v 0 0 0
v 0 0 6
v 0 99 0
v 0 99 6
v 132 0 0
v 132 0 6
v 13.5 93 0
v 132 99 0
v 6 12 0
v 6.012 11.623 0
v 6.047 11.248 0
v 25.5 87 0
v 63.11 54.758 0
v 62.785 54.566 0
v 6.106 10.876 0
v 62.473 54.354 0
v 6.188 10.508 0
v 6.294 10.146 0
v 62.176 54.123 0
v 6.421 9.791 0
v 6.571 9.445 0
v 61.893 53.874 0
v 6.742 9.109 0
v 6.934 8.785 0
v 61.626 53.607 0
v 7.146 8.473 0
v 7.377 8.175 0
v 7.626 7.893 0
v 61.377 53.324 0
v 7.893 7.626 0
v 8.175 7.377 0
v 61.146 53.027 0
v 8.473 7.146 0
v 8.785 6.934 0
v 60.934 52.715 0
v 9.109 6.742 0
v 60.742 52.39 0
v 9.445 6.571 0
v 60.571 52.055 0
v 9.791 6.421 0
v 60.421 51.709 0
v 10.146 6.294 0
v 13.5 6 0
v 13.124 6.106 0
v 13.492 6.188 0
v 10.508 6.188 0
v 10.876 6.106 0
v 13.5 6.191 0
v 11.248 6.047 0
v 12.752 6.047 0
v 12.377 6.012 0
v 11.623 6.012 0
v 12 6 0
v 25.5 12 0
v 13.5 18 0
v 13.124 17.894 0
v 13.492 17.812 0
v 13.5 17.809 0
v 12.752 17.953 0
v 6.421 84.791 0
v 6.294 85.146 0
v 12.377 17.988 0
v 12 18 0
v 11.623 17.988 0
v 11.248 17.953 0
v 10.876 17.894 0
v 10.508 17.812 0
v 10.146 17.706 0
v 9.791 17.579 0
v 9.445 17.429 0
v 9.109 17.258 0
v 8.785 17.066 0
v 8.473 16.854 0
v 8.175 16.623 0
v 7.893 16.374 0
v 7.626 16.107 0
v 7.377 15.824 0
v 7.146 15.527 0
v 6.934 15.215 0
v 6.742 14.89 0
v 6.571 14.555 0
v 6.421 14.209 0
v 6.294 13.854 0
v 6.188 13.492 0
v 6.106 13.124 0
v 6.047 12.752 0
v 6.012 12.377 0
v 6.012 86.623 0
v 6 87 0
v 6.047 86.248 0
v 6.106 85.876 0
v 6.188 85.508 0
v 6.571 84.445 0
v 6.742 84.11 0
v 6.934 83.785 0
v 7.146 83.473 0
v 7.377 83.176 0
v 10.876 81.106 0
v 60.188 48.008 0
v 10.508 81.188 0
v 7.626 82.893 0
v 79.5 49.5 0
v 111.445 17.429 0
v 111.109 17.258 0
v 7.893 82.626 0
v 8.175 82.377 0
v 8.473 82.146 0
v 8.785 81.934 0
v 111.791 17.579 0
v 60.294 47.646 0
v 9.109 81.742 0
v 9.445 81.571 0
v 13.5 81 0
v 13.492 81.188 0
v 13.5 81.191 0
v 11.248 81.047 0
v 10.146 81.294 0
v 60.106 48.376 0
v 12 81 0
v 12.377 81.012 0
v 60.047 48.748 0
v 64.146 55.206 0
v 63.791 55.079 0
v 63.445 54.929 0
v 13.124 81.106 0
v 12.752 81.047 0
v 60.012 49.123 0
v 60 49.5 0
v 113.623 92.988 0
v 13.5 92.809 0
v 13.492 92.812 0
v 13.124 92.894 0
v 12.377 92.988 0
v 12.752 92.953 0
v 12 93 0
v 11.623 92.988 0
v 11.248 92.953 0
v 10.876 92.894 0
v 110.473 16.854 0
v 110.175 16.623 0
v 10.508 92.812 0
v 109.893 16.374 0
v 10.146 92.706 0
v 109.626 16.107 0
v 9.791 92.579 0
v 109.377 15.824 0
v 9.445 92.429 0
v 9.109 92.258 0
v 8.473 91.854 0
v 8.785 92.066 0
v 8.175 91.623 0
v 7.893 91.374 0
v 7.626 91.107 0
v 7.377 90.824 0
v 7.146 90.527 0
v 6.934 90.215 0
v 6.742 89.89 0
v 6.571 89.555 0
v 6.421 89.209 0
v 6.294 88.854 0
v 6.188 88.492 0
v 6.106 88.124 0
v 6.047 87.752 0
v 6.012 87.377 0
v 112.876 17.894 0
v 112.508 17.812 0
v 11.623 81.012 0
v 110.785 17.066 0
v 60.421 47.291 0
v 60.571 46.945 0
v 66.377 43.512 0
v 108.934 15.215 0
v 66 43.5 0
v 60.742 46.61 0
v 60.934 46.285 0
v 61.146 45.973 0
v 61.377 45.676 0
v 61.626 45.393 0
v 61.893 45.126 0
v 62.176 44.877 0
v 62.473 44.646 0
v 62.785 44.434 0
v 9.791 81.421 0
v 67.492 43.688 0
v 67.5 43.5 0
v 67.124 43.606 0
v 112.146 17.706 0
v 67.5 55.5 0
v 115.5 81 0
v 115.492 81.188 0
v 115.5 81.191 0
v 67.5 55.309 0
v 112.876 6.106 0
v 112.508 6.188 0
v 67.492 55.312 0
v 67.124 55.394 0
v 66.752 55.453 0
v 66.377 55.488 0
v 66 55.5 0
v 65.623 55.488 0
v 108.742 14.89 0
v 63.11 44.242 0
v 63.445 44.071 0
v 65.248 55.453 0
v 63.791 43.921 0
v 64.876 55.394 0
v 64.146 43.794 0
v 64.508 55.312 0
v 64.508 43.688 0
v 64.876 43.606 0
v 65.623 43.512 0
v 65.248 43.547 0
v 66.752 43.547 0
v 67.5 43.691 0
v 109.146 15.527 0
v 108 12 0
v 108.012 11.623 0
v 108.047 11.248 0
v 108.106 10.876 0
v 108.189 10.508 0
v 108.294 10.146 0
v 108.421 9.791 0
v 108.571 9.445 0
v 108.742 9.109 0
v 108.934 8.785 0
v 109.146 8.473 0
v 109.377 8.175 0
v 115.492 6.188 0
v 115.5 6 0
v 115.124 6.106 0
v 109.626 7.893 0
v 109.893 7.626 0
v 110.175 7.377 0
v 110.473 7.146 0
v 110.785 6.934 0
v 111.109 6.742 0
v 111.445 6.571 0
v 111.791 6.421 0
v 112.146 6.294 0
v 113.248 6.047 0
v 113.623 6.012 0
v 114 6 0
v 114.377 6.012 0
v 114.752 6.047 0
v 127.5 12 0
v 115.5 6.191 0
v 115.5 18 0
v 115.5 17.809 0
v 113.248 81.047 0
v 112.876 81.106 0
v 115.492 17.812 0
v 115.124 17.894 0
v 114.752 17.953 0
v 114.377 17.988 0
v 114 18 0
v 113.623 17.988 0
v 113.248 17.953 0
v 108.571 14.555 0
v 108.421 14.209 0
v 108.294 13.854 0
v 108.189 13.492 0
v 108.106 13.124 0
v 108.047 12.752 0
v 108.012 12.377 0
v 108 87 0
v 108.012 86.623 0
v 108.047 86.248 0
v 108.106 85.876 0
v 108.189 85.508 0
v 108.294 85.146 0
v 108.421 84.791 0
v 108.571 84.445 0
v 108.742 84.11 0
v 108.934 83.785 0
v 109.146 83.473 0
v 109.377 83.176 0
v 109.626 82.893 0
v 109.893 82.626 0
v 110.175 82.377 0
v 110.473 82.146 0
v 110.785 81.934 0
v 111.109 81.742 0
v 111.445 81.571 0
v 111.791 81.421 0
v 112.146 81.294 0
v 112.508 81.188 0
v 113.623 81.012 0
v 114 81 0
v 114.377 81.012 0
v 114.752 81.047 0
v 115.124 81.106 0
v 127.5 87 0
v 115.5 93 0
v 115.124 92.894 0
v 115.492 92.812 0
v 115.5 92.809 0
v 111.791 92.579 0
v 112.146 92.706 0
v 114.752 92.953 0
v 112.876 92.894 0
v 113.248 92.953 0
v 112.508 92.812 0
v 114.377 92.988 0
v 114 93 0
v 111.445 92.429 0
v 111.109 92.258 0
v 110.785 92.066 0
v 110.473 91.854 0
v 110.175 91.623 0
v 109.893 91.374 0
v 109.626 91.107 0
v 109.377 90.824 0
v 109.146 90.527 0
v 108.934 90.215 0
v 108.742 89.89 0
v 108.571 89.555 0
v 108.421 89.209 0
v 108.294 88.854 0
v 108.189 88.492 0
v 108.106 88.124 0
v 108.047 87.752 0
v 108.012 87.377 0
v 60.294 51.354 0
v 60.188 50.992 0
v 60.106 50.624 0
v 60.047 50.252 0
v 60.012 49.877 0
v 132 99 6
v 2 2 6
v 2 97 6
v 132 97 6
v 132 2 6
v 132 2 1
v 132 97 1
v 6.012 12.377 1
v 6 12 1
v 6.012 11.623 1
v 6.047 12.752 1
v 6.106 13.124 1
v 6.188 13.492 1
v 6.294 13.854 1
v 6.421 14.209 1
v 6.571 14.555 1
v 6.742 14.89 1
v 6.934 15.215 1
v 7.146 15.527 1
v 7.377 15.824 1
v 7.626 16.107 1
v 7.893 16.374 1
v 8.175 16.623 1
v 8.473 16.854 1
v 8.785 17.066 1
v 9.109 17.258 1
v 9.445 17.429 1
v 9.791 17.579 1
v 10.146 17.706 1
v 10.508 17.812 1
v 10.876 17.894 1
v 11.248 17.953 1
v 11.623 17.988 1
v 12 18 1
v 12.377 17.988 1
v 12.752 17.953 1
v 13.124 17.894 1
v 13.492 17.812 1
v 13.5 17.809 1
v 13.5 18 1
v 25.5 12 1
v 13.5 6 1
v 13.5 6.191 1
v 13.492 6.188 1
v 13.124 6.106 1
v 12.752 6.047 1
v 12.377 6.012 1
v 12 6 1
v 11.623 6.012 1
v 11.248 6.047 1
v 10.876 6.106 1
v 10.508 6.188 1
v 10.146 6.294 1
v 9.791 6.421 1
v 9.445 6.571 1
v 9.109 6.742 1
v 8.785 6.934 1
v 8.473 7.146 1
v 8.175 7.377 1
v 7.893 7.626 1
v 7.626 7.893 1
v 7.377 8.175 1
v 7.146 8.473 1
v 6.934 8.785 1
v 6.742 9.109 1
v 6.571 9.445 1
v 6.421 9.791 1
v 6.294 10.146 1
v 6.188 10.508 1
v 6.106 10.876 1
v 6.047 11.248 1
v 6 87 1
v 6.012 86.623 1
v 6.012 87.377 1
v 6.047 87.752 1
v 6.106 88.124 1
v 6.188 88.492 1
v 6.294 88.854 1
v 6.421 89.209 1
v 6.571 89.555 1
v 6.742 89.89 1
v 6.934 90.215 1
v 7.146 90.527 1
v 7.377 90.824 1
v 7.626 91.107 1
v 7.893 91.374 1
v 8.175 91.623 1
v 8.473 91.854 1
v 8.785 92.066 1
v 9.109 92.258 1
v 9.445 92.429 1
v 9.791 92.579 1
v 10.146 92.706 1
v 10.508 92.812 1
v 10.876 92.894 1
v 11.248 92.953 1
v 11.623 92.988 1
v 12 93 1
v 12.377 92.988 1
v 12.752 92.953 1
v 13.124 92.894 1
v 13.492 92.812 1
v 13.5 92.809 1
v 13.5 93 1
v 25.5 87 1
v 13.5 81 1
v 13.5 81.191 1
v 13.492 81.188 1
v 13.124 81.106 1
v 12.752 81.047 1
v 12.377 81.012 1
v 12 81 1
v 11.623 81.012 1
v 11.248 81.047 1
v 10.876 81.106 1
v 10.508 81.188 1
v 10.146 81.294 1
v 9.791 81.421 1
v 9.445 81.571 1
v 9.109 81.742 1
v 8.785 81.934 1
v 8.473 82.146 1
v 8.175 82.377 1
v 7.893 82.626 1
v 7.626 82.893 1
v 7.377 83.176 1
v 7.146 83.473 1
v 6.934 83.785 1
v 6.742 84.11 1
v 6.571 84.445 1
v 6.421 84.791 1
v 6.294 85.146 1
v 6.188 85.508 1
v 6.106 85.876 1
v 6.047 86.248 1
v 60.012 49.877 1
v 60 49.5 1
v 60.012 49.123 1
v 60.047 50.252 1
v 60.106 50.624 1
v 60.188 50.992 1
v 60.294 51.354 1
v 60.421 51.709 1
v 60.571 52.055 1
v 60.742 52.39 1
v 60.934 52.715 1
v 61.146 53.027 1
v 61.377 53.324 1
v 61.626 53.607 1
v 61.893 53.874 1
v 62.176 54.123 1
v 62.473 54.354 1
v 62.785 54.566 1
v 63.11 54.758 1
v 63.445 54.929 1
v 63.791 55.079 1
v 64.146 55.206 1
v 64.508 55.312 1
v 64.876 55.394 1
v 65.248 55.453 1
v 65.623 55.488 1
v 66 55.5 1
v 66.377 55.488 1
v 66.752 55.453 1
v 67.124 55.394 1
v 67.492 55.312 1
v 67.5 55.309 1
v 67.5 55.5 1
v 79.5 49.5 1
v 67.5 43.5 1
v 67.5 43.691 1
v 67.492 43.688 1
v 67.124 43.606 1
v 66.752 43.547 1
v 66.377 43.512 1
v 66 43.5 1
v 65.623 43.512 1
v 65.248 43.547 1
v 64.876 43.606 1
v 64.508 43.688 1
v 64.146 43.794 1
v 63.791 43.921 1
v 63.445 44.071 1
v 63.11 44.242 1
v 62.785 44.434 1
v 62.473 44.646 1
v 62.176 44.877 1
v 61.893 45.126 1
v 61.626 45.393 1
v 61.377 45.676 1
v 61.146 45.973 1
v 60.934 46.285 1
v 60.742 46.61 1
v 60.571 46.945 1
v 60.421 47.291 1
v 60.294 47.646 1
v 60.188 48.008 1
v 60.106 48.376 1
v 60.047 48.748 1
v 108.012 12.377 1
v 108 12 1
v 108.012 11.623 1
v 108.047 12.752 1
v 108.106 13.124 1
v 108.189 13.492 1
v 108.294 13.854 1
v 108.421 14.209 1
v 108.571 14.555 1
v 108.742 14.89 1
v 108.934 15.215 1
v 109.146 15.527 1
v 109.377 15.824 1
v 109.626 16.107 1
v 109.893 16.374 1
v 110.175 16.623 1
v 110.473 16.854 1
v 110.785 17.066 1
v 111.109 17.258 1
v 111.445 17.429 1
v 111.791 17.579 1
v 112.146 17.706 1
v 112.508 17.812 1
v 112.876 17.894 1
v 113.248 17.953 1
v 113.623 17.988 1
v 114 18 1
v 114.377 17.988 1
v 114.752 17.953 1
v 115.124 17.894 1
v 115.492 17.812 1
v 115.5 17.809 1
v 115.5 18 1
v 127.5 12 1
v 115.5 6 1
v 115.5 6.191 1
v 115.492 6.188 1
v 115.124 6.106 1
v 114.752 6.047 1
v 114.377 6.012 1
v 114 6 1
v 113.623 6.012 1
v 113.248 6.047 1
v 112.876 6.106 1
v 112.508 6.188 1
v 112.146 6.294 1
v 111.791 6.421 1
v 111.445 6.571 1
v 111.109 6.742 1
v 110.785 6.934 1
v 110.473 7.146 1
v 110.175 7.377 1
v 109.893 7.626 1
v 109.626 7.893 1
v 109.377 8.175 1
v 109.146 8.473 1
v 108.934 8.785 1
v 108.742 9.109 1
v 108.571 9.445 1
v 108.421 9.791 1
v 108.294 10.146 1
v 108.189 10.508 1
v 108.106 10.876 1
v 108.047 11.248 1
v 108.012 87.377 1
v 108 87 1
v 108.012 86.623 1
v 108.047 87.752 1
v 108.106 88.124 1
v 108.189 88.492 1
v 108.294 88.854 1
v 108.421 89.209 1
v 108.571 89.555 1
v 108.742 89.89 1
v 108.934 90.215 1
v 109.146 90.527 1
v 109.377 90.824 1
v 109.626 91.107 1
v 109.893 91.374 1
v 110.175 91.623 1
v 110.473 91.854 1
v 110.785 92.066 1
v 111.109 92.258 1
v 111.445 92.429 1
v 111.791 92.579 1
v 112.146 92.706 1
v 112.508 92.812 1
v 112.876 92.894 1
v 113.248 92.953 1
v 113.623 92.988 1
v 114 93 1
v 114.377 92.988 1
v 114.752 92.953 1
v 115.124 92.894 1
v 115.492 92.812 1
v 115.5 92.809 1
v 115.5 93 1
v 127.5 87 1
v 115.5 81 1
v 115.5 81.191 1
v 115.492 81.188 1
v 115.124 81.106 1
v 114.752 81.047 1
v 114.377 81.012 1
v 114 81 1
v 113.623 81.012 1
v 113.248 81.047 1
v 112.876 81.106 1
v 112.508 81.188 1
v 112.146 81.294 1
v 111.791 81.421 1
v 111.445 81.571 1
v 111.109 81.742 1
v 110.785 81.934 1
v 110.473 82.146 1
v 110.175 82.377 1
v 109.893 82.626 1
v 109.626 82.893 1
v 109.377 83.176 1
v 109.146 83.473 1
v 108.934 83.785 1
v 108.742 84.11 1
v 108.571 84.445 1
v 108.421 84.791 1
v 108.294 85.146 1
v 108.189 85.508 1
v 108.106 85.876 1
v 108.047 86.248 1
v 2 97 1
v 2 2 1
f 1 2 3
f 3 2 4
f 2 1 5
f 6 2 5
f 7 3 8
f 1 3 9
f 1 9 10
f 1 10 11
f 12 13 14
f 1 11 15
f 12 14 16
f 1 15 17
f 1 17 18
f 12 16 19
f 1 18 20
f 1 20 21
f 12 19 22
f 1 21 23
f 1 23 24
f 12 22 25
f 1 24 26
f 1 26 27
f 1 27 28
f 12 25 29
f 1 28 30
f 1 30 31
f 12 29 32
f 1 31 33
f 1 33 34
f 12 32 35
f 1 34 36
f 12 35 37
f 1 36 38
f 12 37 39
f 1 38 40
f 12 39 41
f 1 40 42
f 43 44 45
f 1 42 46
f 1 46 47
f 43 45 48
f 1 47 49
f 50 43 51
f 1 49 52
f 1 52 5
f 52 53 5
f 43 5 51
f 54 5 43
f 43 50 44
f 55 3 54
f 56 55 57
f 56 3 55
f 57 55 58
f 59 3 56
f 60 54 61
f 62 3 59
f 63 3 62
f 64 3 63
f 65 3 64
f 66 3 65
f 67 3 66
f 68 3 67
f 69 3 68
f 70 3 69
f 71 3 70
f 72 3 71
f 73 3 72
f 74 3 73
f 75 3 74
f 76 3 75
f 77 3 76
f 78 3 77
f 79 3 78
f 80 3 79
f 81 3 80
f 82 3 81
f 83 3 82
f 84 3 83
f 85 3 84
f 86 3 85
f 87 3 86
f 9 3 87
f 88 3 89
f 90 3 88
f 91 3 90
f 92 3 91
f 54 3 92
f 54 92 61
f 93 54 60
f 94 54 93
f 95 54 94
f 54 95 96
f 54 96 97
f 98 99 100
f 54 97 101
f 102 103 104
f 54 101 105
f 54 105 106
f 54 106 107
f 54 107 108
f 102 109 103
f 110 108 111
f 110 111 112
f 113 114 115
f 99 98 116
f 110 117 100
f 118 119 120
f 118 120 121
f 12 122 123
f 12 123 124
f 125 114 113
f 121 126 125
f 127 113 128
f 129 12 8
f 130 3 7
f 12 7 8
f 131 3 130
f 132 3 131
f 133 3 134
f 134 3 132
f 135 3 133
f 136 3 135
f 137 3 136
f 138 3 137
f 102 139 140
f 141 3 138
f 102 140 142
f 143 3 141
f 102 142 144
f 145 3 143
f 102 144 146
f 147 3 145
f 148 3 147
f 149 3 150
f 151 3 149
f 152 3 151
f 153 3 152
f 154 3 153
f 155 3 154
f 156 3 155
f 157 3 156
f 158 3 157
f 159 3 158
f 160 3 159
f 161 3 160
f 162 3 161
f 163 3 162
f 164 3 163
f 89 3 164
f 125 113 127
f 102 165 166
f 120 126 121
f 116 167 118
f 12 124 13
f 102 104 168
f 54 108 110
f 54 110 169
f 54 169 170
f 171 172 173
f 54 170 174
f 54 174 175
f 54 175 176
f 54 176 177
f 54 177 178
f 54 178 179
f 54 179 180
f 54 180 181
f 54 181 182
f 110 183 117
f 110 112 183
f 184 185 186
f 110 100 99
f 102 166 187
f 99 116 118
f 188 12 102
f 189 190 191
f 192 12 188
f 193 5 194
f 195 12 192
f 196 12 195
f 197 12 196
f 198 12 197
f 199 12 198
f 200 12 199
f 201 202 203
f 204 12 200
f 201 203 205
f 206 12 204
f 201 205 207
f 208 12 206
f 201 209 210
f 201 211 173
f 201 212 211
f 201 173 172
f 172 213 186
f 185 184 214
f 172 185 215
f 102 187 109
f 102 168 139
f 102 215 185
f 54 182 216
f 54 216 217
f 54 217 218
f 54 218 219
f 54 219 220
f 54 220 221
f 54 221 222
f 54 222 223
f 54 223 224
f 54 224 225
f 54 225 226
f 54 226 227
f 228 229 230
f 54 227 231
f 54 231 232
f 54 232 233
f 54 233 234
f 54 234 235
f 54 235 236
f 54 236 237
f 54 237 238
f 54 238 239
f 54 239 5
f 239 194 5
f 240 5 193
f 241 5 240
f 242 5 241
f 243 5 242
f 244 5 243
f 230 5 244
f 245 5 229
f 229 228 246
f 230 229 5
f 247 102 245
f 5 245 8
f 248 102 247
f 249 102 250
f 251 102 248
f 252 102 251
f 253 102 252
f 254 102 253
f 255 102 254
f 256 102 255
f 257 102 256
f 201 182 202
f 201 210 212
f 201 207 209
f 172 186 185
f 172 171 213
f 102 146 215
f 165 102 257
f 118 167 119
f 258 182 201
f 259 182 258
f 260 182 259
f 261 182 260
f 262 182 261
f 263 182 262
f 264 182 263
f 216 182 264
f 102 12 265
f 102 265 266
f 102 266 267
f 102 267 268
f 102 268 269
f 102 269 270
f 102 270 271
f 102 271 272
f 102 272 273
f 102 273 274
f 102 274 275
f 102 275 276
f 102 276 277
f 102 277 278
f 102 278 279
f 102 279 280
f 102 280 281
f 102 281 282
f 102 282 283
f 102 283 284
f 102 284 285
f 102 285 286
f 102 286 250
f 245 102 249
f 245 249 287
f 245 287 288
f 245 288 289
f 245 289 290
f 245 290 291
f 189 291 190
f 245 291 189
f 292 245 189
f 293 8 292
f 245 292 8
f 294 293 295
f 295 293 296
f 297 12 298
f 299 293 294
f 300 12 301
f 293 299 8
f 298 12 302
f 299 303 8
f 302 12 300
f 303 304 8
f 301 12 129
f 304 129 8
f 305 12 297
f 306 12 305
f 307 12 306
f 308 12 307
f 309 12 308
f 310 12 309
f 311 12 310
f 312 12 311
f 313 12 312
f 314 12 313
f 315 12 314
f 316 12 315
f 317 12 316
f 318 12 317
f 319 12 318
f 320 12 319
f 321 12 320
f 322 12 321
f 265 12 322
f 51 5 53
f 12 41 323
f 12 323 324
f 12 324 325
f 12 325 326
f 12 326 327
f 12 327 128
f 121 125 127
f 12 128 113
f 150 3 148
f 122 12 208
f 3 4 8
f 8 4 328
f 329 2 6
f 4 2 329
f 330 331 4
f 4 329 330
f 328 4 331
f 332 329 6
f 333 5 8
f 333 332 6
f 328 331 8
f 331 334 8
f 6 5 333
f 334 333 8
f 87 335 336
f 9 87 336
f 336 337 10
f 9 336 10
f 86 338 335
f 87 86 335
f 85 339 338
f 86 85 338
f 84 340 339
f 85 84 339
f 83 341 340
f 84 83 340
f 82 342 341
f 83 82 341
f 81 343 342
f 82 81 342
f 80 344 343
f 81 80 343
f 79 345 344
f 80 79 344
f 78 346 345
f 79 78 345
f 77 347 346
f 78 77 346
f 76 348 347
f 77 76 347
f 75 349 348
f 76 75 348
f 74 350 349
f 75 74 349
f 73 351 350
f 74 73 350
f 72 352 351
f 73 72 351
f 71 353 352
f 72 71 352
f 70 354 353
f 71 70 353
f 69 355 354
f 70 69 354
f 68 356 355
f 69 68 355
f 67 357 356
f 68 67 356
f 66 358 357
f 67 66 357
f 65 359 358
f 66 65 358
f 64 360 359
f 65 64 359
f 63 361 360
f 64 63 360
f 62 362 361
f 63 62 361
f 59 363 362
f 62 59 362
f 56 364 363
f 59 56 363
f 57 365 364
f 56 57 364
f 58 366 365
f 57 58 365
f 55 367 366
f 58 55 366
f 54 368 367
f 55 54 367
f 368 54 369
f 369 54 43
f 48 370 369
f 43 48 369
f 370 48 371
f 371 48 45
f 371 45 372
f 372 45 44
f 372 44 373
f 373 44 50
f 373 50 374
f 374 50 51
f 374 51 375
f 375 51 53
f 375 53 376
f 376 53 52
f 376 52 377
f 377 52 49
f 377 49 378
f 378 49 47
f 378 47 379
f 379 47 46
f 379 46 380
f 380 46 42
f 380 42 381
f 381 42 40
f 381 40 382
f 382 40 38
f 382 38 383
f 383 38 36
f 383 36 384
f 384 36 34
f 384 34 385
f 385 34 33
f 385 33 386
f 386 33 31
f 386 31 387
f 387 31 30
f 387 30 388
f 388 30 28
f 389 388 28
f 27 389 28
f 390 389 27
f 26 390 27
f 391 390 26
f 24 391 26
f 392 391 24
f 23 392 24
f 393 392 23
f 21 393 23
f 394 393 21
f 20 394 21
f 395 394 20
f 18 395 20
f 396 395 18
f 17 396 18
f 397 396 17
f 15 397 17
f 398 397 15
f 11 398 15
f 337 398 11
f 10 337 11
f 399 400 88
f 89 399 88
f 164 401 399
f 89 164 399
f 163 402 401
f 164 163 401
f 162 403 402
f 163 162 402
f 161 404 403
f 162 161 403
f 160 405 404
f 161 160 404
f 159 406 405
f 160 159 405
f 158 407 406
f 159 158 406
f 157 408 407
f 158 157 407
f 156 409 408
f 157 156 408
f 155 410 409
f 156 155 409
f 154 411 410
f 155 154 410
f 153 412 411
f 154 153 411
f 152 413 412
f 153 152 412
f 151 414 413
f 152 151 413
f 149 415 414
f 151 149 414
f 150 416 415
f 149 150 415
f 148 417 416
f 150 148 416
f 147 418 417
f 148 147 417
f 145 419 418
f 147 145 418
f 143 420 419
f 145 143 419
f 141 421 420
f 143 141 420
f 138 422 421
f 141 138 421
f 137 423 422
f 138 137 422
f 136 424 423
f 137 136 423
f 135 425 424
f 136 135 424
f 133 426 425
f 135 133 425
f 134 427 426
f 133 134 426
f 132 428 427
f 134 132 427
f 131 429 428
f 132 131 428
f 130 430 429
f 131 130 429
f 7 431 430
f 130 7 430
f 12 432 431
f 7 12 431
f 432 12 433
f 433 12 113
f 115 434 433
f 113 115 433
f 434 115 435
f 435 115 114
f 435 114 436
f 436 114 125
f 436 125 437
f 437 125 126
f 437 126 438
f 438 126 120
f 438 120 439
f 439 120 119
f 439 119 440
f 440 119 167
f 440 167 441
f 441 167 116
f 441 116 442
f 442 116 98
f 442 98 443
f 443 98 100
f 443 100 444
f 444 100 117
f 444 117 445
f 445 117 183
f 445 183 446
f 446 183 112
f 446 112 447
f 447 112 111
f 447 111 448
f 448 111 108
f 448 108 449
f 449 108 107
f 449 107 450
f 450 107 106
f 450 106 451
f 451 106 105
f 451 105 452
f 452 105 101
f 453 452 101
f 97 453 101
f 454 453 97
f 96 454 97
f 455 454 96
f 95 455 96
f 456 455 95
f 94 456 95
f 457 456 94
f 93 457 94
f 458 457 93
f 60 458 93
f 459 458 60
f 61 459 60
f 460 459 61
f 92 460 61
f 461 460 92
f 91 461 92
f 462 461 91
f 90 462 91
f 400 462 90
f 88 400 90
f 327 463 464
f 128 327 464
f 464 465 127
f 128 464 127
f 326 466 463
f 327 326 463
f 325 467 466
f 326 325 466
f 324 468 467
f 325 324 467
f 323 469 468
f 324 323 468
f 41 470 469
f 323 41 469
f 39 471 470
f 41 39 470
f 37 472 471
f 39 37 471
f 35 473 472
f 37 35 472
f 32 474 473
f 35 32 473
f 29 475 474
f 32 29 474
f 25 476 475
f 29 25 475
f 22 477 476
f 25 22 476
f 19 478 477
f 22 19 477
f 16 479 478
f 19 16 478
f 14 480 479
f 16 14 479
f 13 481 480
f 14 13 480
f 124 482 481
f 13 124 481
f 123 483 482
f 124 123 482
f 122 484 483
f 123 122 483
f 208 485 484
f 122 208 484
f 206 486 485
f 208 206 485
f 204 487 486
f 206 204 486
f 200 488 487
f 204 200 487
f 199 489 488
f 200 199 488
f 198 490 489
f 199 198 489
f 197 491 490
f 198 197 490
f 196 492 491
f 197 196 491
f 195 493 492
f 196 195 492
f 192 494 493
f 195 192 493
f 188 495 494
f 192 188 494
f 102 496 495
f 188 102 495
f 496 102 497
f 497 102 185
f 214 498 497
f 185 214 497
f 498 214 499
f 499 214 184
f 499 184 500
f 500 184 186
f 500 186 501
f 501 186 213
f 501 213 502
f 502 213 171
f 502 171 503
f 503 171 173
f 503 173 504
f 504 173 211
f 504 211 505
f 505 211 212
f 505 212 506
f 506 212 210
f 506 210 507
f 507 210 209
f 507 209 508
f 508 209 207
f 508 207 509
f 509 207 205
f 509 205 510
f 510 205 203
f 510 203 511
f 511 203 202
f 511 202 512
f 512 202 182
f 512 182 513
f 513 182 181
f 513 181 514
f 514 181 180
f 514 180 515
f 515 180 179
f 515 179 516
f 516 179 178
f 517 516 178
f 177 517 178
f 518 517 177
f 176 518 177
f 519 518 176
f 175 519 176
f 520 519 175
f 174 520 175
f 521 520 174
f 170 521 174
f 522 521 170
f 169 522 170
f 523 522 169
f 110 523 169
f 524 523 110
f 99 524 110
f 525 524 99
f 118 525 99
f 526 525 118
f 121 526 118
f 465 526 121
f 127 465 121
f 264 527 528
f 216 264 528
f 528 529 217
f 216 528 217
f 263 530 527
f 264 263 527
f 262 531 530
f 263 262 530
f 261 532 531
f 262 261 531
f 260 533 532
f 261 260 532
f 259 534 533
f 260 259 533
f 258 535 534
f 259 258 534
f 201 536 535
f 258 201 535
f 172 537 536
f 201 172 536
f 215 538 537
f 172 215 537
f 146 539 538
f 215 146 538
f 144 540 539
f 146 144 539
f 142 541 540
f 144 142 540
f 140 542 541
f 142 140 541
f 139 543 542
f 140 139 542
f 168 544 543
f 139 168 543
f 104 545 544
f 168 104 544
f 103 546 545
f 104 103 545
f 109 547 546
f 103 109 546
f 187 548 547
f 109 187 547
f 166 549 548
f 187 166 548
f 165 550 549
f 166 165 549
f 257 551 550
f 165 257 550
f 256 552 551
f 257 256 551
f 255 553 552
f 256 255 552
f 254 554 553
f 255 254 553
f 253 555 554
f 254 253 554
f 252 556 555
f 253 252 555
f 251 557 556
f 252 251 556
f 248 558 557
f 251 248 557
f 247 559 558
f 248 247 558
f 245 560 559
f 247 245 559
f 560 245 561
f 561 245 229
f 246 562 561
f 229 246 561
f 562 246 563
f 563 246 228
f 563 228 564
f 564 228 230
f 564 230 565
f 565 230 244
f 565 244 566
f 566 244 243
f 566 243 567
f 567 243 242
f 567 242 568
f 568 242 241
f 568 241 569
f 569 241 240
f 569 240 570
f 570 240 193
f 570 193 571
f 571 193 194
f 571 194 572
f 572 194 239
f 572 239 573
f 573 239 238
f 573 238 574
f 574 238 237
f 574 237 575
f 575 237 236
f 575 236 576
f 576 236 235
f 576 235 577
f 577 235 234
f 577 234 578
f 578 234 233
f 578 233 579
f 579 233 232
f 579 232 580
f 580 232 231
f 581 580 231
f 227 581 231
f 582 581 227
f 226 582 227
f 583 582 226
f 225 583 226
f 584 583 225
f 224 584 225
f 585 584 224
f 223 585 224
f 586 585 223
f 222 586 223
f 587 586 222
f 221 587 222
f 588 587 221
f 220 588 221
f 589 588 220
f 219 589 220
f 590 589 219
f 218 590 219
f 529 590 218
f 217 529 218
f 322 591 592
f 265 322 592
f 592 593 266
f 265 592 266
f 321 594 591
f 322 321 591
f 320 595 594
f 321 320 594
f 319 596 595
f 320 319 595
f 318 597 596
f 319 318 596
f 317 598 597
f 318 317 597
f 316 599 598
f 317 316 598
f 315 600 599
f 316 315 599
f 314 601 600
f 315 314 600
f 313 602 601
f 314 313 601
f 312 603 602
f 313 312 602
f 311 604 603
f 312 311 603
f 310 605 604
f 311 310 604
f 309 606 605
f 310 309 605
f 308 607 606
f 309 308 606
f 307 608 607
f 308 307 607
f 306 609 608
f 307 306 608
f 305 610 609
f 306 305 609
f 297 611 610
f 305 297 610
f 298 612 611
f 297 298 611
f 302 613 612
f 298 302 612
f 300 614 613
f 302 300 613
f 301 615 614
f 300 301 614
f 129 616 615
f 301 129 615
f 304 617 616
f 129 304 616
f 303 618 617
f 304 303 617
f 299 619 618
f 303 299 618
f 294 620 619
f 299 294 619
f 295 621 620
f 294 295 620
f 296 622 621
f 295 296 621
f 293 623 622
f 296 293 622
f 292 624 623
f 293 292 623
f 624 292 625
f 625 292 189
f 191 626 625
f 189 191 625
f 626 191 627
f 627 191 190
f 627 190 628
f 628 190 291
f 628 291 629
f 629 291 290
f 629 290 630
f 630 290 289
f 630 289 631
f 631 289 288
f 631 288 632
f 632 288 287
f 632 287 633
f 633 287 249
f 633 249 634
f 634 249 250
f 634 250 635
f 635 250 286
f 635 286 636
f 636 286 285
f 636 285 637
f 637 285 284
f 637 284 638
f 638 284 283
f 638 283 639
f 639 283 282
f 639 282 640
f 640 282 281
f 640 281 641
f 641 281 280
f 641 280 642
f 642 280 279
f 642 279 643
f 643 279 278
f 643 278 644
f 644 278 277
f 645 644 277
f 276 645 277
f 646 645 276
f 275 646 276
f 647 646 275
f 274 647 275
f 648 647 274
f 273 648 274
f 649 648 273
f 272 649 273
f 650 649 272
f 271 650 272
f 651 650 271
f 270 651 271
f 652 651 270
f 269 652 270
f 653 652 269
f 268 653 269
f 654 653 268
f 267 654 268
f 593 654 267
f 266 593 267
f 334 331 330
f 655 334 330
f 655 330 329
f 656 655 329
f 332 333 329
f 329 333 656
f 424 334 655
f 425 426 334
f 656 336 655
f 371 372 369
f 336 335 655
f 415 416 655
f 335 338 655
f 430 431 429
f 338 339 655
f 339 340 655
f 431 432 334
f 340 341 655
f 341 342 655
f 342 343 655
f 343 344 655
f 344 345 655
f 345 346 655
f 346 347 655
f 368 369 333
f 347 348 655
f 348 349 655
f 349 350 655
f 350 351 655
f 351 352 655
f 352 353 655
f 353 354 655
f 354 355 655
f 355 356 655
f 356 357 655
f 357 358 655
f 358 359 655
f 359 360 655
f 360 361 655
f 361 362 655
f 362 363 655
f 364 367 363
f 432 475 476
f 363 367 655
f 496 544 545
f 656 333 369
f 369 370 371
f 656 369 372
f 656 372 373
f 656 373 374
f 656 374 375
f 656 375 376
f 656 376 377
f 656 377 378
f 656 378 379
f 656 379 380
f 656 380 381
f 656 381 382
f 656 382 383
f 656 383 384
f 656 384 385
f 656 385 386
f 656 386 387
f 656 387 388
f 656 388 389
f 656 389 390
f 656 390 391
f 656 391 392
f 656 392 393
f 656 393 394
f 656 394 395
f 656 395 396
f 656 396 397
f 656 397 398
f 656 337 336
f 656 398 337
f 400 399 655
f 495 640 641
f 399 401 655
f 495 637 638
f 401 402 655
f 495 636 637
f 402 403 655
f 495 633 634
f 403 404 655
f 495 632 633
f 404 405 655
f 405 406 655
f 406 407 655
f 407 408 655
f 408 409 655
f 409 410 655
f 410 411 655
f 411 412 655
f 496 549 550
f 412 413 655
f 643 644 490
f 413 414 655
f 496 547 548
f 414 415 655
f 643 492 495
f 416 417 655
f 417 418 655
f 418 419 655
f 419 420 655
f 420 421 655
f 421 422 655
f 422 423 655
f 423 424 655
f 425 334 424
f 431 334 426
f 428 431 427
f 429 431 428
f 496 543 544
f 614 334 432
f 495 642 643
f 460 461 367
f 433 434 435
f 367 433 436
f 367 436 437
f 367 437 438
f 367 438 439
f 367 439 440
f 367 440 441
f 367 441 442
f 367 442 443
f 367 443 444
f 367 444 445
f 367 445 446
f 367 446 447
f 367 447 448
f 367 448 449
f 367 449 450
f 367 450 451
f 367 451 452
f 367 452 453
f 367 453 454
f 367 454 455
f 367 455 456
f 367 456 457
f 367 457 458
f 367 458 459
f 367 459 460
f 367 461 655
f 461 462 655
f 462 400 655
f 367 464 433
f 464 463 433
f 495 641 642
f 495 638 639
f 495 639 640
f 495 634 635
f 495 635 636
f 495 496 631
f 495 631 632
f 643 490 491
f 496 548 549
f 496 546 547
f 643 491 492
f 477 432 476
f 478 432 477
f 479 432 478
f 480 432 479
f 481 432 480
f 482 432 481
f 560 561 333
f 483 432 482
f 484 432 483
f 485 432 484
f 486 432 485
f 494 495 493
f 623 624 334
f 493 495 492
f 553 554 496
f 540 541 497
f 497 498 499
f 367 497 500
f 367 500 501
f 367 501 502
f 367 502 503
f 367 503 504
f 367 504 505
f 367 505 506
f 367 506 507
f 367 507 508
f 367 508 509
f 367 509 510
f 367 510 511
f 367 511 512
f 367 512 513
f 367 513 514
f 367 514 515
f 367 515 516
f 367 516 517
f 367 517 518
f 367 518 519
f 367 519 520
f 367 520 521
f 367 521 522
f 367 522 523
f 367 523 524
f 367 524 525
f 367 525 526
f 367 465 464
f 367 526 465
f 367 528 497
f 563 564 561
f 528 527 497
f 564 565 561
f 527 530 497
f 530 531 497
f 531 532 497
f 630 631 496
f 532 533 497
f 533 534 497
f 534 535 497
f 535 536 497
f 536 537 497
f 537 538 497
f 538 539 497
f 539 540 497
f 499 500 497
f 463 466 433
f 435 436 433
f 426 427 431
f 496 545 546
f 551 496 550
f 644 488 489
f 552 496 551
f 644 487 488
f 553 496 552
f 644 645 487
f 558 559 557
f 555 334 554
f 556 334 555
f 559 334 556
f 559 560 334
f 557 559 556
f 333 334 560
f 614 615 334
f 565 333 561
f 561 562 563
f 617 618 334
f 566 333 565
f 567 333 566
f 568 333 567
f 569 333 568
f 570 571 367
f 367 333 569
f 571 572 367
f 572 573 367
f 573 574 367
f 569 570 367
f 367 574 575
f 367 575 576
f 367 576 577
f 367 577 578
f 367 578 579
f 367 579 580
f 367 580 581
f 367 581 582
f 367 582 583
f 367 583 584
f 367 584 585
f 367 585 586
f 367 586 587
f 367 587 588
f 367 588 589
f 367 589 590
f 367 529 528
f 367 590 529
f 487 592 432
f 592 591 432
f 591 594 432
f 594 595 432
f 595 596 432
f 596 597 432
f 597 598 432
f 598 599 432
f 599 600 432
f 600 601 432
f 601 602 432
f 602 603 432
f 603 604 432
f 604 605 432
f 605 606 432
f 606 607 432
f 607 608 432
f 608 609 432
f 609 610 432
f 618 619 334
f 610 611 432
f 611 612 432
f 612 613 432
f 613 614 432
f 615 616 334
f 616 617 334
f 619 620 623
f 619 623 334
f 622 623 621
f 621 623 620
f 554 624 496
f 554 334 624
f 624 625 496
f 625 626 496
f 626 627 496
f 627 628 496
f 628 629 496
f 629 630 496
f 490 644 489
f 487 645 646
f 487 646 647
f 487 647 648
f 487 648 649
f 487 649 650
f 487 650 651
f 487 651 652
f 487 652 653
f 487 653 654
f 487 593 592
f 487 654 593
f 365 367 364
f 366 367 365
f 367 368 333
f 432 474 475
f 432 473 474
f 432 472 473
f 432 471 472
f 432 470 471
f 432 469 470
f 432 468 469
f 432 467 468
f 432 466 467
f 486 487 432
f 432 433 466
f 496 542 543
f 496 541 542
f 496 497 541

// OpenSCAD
longueur=128; //117 pour v1
largeur=95; //86 pour v1
ep=2;
r_pointe=6;
dec=1.5;
height=10;
tol=2;

module goutte(){
	union(){
		cylinder(h = height, r = r_pointe, $fn=100);
		polyhedron(
  points=[[dec,-r_pointe,0],[dec,r_pointe,0],[dec+r_pointe*2,0,0],[dec,-r_pointe,height],[dec,r_pointe,height],[dec+r_pointe*2,0,height]], 
  triangles=[[1,0,2],[3,2,0],[3,5,2],[0,1,3],[3,1,4],[1,5,4],[1,2,5],[4,5,3]]);	
	}
}

module sanguinololu_top(){
	difference(){
		cube([longueur+ep*2, largeur+ep*2, ep+4]);

		translate([ep,ep,ep-1]){cube([longueur+10, largeur, 10]);}

		translate([ep*2+r_pointe+tol,ep*2+r_pointe+tol,-5]){goutte();}
		translate([ep*2+r_pointe+tol,largeur-r_pointe-ep,-5]){goutte();}
		translate([longueur-r_pointe-ep*4,ep*2+r_pointe+tol,-5]){goutte();}
		translate([longueur-r_pointe-ep*4,largeur-r_pointe-ep,-5]){goutte();}
		translate([(longueur+ep*2)/2,(largeur+ep*2)/2,-5]){goutte();}
	}
}
sanguinololu_top();
